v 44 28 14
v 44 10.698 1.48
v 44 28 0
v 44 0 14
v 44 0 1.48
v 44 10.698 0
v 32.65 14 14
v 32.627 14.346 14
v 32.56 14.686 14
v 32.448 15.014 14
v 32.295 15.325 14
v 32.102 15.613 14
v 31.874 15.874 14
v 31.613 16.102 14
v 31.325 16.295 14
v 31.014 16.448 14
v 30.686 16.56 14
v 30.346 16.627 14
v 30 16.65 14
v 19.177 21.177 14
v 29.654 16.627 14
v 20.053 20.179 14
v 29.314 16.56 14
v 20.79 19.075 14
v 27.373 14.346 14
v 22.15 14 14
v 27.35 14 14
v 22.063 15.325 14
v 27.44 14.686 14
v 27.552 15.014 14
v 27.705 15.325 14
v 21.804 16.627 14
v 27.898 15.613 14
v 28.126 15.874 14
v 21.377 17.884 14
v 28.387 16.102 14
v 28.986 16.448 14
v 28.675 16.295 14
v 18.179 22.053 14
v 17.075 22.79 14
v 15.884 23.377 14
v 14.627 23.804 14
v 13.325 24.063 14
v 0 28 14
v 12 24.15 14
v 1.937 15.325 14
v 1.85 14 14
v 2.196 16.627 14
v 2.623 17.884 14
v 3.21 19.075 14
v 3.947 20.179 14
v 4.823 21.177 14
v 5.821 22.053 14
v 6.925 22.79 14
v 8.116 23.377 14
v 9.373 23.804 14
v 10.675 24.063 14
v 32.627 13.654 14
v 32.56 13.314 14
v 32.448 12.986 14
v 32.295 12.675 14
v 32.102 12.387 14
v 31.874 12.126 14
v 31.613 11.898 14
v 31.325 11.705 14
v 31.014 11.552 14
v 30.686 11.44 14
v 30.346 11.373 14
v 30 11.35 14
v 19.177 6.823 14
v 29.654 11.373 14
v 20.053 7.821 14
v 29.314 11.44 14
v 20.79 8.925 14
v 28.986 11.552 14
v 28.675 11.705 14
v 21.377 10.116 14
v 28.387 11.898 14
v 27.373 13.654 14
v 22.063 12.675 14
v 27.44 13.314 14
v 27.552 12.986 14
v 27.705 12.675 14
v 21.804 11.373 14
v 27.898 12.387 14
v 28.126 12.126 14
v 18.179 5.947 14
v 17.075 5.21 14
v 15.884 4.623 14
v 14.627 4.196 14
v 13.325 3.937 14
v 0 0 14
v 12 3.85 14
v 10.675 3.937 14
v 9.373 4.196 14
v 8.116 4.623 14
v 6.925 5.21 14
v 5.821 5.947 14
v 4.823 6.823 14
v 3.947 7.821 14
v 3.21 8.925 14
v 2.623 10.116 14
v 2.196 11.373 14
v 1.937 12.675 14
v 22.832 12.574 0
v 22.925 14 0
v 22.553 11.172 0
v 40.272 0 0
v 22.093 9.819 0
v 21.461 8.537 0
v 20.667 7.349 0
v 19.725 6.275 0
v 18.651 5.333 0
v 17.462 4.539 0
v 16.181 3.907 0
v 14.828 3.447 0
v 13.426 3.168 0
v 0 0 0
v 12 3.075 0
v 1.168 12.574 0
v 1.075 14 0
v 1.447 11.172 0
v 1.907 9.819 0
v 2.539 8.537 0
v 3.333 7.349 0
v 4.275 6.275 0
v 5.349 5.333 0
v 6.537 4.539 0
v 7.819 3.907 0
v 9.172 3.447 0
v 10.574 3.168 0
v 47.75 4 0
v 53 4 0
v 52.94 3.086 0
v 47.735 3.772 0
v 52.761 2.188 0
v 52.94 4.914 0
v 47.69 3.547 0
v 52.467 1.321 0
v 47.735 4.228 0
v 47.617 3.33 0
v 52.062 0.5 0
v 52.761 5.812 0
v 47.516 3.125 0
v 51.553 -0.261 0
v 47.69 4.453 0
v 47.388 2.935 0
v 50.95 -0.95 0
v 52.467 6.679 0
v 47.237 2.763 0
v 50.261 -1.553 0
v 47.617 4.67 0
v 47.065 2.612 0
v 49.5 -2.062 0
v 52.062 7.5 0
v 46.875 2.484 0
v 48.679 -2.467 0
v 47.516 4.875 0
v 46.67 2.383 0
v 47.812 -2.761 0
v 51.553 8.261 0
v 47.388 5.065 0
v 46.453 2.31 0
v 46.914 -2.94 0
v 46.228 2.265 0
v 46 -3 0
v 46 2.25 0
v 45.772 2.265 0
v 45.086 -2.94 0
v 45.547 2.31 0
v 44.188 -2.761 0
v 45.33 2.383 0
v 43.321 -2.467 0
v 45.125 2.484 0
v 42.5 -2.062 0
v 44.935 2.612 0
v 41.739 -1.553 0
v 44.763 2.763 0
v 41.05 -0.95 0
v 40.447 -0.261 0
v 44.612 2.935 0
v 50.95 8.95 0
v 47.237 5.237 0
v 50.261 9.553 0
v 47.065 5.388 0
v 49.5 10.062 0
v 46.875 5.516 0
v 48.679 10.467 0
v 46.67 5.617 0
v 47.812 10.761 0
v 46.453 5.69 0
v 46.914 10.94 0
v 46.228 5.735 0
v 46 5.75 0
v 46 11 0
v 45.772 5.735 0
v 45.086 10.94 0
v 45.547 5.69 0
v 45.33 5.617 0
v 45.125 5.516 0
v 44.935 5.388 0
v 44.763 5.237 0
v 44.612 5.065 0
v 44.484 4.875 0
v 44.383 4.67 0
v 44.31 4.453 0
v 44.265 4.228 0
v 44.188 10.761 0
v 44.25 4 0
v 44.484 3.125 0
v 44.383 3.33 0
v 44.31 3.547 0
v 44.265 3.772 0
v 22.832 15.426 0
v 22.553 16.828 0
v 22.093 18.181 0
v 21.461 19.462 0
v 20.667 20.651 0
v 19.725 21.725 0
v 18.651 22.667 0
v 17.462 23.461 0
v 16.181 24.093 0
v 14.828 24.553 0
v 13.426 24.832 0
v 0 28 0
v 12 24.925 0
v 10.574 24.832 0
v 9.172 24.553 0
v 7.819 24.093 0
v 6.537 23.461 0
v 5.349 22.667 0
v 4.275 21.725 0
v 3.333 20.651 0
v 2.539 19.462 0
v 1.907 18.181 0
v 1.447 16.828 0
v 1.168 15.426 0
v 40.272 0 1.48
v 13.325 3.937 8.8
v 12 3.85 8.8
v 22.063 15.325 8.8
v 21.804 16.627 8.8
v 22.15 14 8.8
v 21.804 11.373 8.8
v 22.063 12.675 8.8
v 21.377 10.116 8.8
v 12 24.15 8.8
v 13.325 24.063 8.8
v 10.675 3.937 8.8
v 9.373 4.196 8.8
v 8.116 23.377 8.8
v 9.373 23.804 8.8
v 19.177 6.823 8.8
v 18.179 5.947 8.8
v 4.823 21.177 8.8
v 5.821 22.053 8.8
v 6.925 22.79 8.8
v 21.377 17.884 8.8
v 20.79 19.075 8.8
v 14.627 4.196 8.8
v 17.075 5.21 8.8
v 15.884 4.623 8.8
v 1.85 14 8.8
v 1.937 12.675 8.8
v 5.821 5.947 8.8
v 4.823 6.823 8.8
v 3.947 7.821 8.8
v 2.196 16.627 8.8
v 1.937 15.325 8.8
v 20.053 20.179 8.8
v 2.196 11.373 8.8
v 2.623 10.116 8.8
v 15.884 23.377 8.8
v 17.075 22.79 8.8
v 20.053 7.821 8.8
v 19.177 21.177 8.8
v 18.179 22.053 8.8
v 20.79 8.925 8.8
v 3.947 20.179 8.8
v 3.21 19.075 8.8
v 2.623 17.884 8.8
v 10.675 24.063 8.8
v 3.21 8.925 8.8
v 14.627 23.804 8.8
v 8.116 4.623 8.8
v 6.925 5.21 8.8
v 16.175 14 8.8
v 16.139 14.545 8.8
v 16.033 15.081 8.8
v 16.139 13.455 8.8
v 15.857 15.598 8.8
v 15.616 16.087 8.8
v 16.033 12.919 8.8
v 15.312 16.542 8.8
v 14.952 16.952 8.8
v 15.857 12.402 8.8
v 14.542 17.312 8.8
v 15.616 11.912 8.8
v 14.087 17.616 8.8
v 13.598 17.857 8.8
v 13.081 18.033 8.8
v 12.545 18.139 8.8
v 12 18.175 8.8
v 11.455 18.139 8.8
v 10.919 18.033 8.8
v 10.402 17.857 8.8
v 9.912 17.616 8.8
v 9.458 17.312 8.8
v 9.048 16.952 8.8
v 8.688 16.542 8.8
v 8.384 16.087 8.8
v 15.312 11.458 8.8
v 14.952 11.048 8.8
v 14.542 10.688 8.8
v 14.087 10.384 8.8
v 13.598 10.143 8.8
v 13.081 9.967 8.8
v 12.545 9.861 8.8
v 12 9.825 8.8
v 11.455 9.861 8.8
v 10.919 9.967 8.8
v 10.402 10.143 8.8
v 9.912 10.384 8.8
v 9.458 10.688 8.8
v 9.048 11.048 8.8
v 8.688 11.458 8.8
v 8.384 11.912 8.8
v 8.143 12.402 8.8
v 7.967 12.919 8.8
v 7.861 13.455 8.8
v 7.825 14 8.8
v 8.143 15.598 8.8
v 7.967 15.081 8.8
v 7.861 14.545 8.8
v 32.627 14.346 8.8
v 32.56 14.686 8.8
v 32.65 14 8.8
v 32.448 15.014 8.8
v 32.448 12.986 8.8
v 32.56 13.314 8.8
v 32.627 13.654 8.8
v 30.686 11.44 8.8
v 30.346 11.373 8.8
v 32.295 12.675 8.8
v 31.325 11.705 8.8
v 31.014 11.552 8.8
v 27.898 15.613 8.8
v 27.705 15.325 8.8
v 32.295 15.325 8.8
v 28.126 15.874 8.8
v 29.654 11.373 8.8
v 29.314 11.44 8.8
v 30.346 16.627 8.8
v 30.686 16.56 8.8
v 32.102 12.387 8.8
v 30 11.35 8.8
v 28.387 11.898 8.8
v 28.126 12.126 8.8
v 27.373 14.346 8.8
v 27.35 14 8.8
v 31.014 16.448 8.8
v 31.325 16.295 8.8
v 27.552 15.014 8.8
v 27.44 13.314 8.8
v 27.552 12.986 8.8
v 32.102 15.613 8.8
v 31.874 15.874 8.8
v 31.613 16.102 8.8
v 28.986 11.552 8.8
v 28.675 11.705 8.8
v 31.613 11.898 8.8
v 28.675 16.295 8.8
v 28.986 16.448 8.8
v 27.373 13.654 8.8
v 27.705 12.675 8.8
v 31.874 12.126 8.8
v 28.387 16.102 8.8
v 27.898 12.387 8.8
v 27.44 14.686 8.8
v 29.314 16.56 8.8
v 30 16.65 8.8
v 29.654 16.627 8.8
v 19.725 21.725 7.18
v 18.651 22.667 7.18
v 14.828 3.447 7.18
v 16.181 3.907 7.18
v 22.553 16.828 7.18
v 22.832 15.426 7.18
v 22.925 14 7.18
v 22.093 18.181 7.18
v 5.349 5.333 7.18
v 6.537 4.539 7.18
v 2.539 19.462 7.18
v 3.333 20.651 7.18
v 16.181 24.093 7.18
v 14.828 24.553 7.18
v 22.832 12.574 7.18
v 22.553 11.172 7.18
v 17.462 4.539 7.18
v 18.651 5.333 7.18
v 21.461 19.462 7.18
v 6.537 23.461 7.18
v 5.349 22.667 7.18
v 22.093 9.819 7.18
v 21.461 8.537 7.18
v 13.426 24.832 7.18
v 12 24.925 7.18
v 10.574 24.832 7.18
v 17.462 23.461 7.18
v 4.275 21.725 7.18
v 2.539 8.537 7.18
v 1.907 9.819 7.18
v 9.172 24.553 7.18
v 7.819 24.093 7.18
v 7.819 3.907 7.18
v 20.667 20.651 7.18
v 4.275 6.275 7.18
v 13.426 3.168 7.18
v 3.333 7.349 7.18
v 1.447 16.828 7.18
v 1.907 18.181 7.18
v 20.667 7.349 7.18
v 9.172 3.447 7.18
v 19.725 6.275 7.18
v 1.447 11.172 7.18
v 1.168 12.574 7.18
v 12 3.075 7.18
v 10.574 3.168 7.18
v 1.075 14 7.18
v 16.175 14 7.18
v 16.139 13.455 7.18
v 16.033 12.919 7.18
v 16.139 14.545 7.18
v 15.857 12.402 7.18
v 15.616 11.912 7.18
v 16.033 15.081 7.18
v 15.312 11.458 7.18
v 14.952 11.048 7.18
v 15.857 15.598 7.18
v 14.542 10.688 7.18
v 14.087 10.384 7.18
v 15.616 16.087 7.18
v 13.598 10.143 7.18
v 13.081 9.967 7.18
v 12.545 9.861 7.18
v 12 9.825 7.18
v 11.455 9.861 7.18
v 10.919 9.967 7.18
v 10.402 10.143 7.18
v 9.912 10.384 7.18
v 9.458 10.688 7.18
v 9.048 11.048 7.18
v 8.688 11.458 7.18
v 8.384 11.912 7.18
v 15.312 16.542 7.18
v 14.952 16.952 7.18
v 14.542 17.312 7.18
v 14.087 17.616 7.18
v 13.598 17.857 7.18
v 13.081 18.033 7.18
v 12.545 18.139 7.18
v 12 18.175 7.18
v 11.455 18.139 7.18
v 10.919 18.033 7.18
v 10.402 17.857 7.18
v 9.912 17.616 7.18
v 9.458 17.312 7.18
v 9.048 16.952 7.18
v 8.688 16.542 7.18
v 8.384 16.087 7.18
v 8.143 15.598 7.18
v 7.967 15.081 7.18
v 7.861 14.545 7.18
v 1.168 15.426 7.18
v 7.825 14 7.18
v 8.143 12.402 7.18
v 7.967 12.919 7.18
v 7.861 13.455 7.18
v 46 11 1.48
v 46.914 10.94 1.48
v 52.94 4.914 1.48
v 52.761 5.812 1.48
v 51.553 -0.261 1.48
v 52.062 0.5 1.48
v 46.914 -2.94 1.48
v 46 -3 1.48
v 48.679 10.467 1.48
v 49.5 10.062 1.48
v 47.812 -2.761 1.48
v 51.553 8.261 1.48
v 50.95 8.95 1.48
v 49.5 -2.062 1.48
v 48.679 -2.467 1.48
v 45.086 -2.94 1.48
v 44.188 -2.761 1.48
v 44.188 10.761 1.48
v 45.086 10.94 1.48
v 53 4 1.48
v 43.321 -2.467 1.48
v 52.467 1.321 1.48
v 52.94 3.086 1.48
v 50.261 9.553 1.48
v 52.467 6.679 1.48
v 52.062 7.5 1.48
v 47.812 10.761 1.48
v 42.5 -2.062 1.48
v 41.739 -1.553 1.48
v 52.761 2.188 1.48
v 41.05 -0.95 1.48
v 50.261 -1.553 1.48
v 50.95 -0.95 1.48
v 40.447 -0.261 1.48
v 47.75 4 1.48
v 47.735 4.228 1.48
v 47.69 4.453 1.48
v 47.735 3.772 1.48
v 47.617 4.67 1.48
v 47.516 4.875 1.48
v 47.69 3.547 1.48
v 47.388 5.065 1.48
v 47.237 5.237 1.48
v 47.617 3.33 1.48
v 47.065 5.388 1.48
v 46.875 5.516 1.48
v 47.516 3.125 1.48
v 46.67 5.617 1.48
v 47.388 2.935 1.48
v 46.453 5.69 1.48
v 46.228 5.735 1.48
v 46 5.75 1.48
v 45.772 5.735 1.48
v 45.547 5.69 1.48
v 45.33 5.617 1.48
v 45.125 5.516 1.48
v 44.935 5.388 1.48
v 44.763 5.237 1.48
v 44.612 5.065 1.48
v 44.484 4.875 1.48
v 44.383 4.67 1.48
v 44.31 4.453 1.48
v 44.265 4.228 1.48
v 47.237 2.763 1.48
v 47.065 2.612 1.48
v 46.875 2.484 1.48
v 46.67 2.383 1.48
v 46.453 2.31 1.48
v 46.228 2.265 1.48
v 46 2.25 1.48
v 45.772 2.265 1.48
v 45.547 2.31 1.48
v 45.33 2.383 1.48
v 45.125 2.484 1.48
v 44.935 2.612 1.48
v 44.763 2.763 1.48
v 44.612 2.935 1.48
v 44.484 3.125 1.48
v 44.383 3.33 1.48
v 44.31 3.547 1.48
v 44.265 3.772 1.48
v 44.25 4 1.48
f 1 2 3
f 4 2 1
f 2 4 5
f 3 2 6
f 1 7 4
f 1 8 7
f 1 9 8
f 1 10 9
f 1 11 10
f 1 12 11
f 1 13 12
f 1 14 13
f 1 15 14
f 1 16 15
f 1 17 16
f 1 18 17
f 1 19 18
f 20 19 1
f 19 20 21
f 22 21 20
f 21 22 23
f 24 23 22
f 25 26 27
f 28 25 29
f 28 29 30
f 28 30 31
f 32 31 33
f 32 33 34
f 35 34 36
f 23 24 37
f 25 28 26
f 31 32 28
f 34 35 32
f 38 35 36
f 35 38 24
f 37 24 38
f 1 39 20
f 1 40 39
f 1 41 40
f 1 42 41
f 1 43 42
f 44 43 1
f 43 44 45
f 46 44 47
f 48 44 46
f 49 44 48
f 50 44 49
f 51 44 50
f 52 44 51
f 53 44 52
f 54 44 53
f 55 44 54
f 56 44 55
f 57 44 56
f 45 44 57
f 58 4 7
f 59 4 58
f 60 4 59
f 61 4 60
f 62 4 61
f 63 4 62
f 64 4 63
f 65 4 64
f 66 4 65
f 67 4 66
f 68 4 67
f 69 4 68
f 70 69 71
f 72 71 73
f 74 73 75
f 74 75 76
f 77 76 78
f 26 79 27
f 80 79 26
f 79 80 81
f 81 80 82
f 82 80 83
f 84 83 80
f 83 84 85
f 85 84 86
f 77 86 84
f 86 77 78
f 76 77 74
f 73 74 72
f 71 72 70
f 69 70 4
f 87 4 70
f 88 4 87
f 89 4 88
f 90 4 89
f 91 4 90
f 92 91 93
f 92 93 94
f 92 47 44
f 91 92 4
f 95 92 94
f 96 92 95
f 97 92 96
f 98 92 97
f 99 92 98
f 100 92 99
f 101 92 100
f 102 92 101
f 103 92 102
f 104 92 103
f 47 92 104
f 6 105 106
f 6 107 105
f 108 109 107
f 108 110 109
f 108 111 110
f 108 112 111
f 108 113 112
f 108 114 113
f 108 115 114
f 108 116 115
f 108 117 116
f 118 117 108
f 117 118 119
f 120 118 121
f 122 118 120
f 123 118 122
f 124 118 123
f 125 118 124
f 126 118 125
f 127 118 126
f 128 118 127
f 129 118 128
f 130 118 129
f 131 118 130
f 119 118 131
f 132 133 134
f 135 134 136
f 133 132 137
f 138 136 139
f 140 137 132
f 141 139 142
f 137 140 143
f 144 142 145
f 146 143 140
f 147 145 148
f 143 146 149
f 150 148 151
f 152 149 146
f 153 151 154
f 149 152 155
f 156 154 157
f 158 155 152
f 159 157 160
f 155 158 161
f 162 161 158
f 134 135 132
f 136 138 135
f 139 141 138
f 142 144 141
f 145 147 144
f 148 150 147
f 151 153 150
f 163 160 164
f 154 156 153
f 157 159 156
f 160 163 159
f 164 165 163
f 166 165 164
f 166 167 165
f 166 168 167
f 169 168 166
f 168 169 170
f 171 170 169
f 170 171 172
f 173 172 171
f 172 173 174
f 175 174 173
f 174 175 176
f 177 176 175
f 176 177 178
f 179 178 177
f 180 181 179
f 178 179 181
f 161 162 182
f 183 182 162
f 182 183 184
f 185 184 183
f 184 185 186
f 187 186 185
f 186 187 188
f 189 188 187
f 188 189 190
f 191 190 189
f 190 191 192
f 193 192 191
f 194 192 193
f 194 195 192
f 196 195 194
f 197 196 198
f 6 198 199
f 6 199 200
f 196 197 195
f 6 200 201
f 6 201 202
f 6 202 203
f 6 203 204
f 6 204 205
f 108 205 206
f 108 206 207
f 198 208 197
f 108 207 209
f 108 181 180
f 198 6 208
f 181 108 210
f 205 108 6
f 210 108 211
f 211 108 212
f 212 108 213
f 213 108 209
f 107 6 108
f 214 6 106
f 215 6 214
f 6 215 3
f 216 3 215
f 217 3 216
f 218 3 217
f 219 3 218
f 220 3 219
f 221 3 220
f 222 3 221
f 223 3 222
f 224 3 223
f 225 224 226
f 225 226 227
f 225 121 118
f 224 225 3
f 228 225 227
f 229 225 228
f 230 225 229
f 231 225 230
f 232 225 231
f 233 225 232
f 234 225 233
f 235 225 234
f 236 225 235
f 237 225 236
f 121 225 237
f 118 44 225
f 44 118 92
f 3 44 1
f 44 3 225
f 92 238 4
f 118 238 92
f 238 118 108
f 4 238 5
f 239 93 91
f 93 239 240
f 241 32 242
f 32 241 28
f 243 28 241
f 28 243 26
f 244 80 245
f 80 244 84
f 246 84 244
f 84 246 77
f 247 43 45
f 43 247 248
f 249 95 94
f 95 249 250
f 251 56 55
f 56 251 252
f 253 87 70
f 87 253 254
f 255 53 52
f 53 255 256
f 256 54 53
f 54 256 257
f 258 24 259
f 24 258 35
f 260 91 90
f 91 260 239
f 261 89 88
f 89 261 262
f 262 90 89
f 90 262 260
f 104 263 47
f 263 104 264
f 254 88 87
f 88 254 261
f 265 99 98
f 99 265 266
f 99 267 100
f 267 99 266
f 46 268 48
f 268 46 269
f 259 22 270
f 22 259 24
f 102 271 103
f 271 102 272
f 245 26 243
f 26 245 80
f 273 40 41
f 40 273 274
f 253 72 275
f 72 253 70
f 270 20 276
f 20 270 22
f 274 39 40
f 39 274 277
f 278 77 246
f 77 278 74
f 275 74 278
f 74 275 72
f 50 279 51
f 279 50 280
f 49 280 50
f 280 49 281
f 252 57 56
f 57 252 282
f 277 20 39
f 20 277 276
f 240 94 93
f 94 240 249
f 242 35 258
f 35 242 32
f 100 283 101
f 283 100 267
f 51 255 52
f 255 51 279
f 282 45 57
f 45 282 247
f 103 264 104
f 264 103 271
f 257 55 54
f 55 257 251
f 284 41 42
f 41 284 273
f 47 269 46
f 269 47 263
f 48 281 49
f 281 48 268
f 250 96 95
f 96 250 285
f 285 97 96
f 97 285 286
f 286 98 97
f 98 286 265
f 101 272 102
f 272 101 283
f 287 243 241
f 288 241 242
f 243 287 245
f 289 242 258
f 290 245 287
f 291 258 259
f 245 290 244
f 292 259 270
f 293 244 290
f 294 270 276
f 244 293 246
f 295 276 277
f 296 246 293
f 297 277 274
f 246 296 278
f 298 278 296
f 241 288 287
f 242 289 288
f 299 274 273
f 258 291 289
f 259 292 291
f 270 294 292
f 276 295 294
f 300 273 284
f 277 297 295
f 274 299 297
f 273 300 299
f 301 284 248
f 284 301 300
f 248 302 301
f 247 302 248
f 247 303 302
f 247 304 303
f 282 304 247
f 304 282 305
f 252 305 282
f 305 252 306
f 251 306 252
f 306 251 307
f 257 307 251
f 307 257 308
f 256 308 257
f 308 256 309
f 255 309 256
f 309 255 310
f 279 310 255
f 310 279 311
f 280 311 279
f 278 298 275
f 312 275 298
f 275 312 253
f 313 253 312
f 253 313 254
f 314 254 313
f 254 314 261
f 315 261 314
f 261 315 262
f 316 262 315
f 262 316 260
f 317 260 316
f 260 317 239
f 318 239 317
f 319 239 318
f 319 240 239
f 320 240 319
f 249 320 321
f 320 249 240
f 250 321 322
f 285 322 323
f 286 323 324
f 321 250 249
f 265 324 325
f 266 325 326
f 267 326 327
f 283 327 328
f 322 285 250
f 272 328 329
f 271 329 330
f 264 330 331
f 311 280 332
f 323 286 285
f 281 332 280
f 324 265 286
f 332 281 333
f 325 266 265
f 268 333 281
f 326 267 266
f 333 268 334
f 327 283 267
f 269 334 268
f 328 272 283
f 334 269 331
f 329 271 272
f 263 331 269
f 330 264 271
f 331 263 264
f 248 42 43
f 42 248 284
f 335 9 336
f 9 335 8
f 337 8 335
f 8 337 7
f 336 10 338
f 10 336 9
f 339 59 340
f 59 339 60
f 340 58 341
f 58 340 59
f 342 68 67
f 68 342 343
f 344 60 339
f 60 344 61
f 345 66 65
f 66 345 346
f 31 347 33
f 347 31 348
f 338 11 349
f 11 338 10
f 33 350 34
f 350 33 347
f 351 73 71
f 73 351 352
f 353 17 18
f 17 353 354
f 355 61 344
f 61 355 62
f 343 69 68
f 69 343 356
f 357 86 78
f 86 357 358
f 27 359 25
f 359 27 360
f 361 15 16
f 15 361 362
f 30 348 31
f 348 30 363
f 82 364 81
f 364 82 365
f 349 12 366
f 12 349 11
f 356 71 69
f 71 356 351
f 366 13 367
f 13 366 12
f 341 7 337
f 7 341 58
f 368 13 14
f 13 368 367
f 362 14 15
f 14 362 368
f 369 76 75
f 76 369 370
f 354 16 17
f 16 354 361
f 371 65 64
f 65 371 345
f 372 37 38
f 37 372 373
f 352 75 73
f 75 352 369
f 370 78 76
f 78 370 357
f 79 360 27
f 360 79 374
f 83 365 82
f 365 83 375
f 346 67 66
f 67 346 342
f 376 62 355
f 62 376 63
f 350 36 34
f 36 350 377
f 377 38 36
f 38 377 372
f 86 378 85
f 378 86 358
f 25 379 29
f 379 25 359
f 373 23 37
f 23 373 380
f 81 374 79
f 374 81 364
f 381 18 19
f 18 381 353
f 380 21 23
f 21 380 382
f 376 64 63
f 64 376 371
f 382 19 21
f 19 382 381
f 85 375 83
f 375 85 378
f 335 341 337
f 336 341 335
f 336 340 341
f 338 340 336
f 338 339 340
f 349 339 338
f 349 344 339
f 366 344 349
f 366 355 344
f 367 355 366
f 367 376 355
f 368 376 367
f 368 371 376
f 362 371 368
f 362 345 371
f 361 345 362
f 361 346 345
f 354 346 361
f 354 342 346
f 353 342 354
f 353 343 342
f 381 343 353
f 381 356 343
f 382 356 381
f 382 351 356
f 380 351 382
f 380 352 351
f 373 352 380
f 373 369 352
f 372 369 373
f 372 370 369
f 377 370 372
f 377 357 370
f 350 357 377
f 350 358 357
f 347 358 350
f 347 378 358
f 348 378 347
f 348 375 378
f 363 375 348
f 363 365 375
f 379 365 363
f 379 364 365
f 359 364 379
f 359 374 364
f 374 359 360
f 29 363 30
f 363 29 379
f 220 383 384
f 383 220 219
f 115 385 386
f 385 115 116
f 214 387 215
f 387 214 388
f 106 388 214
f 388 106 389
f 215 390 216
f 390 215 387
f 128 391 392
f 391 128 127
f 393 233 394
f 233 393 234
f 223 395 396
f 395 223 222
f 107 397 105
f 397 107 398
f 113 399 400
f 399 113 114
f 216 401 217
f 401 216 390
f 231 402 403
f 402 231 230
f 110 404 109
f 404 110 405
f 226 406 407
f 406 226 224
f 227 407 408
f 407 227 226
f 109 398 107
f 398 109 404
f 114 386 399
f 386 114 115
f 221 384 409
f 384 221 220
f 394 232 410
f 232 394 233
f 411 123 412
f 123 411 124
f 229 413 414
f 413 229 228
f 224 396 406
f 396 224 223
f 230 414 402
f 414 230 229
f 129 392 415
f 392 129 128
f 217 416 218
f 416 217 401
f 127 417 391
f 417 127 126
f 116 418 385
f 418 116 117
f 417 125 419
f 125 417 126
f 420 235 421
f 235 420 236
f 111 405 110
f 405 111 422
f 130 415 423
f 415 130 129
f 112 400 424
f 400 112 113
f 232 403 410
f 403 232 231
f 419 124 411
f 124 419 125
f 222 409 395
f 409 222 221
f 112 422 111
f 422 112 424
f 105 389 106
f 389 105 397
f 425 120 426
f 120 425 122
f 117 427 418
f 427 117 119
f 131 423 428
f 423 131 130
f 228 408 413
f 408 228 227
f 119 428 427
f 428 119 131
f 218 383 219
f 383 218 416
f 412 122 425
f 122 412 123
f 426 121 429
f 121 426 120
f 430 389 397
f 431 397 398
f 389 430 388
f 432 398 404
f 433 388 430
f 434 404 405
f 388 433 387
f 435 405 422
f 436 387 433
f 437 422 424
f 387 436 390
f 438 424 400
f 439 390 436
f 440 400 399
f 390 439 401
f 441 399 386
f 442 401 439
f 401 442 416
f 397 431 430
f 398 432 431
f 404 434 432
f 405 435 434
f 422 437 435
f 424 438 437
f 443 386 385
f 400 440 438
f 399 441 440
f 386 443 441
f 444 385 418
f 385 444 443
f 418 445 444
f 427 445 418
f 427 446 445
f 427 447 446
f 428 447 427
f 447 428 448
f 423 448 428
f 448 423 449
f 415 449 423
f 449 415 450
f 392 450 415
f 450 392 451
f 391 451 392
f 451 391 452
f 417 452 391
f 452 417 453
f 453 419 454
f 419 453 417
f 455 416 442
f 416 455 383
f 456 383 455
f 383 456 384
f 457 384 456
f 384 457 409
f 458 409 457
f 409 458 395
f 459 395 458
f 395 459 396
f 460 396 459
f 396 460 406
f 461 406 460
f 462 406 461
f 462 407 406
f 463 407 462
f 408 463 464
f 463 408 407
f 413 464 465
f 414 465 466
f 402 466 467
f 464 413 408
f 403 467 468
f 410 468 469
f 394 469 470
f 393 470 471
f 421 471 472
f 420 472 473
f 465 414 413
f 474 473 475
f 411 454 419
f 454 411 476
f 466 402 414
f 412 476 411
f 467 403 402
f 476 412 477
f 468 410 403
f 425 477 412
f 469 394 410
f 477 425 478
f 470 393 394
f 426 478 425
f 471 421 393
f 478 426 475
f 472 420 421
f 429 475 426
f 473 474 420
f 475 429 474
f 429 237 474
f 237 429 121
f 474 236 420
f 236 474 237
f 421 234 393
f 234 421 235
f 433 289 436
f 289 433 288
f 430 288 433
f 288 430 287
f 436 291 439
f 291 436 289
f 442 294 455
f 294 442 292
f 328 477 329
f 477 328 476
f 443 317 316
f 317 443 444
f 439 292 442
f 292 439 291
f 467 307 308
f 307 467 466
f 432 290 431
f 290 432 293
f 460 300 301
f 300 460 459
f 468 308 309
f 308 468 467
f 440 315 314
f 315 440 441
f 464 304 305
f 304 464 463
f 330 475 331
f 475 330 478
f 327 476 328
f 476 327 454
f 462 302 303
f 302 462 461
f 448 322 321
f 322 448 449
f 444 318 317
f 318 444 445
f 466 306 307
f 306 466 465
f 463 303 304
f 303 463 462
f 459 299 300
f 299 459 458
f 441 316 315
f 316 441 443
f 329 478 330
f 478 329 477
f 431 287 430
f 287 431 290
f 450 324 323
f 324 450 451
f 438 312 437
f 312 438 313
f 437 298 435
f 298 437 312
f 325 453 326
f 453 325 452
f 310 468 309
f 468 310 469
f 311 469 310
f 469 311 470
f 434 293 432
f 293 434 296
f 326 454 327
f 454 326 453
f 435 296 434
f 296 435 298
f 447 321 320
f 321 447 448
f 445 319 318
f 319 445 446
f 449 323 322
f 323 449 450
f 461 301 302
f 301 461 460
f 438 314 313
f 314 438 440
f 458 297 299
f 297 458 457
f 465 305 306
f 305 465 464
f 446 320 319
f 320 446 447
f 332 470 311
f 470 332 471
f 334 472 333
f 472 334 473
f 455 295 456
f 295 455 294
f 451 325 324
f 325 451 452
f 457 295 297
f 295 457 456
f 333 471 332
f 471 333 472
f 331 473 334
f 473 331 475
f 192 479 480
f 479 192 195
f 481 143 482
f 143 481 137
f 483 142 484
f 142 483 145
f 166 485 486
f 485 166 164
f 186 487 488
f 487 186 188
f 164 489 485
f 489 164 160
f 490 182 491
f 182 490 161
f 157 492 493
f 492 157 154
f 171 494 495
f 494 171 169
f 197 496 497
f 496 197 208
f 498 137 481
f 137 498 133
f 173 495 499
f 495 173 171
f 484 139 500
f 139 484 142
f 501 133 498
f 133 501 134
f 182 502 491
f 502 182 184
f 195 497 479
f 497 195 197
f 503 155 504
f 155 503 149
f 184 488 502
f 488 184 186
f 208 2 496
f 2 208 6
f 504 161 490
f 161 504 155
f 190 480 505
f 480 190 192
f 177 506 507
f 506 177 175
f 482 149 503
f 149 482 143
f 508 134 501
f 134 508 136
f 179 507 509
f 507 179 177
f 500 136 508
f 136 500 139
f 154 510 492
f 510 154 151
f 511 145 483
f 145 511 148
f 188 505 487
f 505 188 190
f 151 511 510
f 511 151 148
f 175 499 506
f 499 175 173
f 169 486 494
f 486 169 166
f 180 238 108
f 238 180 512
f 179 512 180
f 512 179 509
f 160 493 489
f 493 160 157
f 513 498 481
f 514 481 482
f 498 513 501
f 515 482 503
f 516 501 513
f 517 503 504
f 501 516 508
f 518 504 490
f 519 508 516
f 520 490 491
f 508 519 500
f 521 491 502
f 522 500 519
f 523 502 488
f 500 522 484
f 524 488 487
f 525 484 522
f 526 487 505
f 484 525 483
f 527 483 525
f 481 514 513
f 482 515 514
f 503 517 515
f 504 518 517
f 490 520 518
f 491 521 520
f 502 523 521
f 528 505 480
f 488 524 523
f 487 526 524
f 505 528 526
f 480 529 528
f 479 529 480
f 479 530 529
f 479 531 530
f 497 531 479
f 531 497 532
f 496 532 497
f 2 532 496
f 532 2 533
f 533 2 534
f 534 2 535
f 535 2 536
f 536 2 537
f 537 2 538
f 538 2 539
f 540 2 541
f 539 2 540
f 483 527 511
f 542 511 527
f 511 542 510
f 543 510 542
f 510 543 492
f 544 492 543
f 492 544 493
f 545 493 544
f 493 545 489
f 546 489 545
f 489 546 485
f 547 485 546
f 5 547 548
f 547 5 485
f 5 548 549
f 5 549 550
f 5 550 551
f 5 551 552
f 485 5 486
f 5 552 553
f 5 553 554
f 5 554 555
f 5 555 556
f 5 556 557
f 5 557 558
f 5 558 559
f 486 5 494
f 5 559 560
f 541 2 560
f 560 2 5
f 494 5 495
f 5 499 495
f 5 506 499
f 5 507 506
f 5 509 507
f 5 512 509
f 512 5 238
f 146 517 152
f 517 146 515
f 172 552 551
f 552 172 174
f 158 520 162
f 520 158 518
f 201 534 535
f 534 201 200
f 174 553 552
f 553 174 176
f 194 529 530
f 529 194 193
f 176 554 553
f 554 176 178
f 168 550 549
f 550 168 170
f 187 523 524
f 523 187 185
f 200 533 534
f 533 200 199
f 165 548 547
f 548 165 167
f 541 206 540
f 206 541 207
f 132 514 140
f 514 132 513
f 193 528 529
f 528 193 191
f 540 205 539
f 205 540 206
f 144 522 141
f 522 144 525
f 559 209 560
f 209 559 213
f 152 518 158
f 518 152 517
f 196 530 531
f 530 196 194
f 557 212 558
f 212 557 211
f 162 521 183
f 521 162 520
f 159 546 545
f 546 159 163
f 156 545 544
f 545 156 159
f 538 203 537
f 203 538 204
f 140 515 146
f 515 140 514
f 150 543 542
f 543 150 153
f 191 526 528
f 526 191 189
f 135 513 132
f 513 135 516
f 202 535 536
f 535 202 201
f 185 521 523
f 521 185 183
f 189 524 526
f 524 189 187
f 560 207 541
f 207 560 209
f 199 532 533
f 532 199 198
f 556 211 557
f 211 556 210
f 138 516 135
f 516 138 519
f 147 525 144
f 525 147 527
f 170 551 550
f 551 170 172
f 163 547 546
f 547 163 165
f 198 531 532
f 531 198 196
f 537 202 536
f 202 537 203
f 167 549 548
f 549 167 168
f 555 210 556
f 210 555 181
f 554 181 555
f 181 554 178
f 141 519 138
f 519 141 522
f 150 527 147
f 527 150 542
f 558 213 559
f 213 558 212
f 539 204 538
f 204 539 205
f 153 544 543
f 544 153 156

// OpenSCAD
// file: parameters.scad
// =============================================================================
// Gen-U Vernier + flux-claw AFPM — WOUND-AWARE (HARD GATE)
// 16-pole rotor (16×Ø20) + 48×Ø5 claw/edge flux assists; 12-coil vernier stator
// Optional mild-steel washer registers in BOM for claw return paths.
// =============================================================================

wire_awg            = 26;
wire_od             = 0.45;
turns               = 140;      // vernier: more turns for low-RPM band
fill                = 0.70;
layers_per_face     = 2;
wind_build_axial    = layers_per_face * wire_od * fill;   // 0.63
wind_build_radial   = 3 * wire_od * fill;                 // 0.945

coil_id_r           = 22.0;
coil_od_r           = 58.0;
span_deg            = 24.0;     // 12 stations; vernier vs 16 poles
former_web          = 2.6;
flange_t            = 0.9;
wall                = 1.2;
slot_w              = 2.4;
mount_hole          = 3.5;
tab_len             = 7.0;

former_bare_h       = former_web + 2 * flange_t;            // 4.4
coil_envelope_h     = former_bare_h + 2 * wind_build_axial; // 5.66

run_clear           = 0.85;     // prefer ≥0.85 for vernier stack
gap_spacer_h        = run_clear + wind_build_axial;         // 1.48
// Single-rotor AFPM: magnet ↔ wound = run_clear (spacer math)
// (No dual-rotor m2m; stator faces one magnet plane)

coil_stations       = 12;
bay_r_in            = coil_id_r - 2.0 - wind_build_radial;
bay_r_out           = coil_od_r + 2.0 + wind_build_radial;
bay_span            = span_deg + 4.0;
bay_offset          = 2.0;
bay_depth           = former_bare_h + wind_build_axial;
stator_back_web     = 2.5;
stator_thick        = bay_depth + stator_back_web;
stator_od           = 156.0;
shaft_clear_stator  = 36.0;
coil_mount_r        = 28.0;

// Rotor: ALL 16×Ø20 as poles + 48×Ø5 claw/edge (3 rings × 16)
large_pocket_d      = 20.3;
small_pocket_d      = 5.3;
pocket_h            = 5.2;
large_n             = 16;       // vernier poles
R_large             = 50.0;
R_claw_inner        = 36.0;     // flux-claw / edge assist rings
R_claw_mid          = 50.0;
R_claw_outer        = 64.0;
carrier_od          = 152.0;
carrier_thick       = 8.0;
hub_h               = 10.0;
hub_od              = 30.0;
// Steel return register pocket (optional washer Ø25×1)
steel_washer_d      = 25.4;
steel_washer_pocket = 1.2;
steel_register_r    = 50.0;

shaft_bore          = 8.35;
bearing_d           = 21.85;
bearing_h           = 7.2;
m3_clear            = 3.5;
bolt_r_inner        = 36.0;
bolt_n_inner        = 6;
flange_bolt_r       = 72.0;
flange_bolt_n       = 6;
brace_r             = 68.0;
brace_d             = 4.3;
brace_n             = 4;

spacer_pad_od       = 14.0;
spacer_pad_id       = m3_clear;
endbell_od          = 156.0;
endbell_thick       = 8.0;
endbell_shaft_clear = 10.0;

// Claw flux pad (printed) — seats optional steel washer behind rotor
claw_pad_od         = 30.0;
claw_pad_h          = 3.0;

$fn = 64;
// main file
include <parameters.scad>;
$fn = 48;
block_w = 44; block_d = 28; block_h = 14;
difference() {
    cube([block_w, block_d, block_h]);
    translate([12, block_d/2, block_h - pocket_h])
        cylinder(d=large_pocket_d, h=pocket_h + 0.2);
    translate([30, block_d/2, block_h - pocket_h])
        cylinder(d=small_pocket_d, h=pocket_h + 0.2);
    translate([12, block_d/2, -0.02])
        cylinder(d=bearing_d, h=bearing_h);
    translate([12, block_d/2, -0.1])
        cylinder(d=shaft_bore, h=block_h + 1);
}
translate([block_w + 2, 4, 0])
    difference() {
        cylinder(d=spacer_pad_od, h=gap_spacer_h);
        translate([0, 0, -0.1]) cylinder(d=spacer_pad_id, h=gap_spacer_h + 0.2);
    }
